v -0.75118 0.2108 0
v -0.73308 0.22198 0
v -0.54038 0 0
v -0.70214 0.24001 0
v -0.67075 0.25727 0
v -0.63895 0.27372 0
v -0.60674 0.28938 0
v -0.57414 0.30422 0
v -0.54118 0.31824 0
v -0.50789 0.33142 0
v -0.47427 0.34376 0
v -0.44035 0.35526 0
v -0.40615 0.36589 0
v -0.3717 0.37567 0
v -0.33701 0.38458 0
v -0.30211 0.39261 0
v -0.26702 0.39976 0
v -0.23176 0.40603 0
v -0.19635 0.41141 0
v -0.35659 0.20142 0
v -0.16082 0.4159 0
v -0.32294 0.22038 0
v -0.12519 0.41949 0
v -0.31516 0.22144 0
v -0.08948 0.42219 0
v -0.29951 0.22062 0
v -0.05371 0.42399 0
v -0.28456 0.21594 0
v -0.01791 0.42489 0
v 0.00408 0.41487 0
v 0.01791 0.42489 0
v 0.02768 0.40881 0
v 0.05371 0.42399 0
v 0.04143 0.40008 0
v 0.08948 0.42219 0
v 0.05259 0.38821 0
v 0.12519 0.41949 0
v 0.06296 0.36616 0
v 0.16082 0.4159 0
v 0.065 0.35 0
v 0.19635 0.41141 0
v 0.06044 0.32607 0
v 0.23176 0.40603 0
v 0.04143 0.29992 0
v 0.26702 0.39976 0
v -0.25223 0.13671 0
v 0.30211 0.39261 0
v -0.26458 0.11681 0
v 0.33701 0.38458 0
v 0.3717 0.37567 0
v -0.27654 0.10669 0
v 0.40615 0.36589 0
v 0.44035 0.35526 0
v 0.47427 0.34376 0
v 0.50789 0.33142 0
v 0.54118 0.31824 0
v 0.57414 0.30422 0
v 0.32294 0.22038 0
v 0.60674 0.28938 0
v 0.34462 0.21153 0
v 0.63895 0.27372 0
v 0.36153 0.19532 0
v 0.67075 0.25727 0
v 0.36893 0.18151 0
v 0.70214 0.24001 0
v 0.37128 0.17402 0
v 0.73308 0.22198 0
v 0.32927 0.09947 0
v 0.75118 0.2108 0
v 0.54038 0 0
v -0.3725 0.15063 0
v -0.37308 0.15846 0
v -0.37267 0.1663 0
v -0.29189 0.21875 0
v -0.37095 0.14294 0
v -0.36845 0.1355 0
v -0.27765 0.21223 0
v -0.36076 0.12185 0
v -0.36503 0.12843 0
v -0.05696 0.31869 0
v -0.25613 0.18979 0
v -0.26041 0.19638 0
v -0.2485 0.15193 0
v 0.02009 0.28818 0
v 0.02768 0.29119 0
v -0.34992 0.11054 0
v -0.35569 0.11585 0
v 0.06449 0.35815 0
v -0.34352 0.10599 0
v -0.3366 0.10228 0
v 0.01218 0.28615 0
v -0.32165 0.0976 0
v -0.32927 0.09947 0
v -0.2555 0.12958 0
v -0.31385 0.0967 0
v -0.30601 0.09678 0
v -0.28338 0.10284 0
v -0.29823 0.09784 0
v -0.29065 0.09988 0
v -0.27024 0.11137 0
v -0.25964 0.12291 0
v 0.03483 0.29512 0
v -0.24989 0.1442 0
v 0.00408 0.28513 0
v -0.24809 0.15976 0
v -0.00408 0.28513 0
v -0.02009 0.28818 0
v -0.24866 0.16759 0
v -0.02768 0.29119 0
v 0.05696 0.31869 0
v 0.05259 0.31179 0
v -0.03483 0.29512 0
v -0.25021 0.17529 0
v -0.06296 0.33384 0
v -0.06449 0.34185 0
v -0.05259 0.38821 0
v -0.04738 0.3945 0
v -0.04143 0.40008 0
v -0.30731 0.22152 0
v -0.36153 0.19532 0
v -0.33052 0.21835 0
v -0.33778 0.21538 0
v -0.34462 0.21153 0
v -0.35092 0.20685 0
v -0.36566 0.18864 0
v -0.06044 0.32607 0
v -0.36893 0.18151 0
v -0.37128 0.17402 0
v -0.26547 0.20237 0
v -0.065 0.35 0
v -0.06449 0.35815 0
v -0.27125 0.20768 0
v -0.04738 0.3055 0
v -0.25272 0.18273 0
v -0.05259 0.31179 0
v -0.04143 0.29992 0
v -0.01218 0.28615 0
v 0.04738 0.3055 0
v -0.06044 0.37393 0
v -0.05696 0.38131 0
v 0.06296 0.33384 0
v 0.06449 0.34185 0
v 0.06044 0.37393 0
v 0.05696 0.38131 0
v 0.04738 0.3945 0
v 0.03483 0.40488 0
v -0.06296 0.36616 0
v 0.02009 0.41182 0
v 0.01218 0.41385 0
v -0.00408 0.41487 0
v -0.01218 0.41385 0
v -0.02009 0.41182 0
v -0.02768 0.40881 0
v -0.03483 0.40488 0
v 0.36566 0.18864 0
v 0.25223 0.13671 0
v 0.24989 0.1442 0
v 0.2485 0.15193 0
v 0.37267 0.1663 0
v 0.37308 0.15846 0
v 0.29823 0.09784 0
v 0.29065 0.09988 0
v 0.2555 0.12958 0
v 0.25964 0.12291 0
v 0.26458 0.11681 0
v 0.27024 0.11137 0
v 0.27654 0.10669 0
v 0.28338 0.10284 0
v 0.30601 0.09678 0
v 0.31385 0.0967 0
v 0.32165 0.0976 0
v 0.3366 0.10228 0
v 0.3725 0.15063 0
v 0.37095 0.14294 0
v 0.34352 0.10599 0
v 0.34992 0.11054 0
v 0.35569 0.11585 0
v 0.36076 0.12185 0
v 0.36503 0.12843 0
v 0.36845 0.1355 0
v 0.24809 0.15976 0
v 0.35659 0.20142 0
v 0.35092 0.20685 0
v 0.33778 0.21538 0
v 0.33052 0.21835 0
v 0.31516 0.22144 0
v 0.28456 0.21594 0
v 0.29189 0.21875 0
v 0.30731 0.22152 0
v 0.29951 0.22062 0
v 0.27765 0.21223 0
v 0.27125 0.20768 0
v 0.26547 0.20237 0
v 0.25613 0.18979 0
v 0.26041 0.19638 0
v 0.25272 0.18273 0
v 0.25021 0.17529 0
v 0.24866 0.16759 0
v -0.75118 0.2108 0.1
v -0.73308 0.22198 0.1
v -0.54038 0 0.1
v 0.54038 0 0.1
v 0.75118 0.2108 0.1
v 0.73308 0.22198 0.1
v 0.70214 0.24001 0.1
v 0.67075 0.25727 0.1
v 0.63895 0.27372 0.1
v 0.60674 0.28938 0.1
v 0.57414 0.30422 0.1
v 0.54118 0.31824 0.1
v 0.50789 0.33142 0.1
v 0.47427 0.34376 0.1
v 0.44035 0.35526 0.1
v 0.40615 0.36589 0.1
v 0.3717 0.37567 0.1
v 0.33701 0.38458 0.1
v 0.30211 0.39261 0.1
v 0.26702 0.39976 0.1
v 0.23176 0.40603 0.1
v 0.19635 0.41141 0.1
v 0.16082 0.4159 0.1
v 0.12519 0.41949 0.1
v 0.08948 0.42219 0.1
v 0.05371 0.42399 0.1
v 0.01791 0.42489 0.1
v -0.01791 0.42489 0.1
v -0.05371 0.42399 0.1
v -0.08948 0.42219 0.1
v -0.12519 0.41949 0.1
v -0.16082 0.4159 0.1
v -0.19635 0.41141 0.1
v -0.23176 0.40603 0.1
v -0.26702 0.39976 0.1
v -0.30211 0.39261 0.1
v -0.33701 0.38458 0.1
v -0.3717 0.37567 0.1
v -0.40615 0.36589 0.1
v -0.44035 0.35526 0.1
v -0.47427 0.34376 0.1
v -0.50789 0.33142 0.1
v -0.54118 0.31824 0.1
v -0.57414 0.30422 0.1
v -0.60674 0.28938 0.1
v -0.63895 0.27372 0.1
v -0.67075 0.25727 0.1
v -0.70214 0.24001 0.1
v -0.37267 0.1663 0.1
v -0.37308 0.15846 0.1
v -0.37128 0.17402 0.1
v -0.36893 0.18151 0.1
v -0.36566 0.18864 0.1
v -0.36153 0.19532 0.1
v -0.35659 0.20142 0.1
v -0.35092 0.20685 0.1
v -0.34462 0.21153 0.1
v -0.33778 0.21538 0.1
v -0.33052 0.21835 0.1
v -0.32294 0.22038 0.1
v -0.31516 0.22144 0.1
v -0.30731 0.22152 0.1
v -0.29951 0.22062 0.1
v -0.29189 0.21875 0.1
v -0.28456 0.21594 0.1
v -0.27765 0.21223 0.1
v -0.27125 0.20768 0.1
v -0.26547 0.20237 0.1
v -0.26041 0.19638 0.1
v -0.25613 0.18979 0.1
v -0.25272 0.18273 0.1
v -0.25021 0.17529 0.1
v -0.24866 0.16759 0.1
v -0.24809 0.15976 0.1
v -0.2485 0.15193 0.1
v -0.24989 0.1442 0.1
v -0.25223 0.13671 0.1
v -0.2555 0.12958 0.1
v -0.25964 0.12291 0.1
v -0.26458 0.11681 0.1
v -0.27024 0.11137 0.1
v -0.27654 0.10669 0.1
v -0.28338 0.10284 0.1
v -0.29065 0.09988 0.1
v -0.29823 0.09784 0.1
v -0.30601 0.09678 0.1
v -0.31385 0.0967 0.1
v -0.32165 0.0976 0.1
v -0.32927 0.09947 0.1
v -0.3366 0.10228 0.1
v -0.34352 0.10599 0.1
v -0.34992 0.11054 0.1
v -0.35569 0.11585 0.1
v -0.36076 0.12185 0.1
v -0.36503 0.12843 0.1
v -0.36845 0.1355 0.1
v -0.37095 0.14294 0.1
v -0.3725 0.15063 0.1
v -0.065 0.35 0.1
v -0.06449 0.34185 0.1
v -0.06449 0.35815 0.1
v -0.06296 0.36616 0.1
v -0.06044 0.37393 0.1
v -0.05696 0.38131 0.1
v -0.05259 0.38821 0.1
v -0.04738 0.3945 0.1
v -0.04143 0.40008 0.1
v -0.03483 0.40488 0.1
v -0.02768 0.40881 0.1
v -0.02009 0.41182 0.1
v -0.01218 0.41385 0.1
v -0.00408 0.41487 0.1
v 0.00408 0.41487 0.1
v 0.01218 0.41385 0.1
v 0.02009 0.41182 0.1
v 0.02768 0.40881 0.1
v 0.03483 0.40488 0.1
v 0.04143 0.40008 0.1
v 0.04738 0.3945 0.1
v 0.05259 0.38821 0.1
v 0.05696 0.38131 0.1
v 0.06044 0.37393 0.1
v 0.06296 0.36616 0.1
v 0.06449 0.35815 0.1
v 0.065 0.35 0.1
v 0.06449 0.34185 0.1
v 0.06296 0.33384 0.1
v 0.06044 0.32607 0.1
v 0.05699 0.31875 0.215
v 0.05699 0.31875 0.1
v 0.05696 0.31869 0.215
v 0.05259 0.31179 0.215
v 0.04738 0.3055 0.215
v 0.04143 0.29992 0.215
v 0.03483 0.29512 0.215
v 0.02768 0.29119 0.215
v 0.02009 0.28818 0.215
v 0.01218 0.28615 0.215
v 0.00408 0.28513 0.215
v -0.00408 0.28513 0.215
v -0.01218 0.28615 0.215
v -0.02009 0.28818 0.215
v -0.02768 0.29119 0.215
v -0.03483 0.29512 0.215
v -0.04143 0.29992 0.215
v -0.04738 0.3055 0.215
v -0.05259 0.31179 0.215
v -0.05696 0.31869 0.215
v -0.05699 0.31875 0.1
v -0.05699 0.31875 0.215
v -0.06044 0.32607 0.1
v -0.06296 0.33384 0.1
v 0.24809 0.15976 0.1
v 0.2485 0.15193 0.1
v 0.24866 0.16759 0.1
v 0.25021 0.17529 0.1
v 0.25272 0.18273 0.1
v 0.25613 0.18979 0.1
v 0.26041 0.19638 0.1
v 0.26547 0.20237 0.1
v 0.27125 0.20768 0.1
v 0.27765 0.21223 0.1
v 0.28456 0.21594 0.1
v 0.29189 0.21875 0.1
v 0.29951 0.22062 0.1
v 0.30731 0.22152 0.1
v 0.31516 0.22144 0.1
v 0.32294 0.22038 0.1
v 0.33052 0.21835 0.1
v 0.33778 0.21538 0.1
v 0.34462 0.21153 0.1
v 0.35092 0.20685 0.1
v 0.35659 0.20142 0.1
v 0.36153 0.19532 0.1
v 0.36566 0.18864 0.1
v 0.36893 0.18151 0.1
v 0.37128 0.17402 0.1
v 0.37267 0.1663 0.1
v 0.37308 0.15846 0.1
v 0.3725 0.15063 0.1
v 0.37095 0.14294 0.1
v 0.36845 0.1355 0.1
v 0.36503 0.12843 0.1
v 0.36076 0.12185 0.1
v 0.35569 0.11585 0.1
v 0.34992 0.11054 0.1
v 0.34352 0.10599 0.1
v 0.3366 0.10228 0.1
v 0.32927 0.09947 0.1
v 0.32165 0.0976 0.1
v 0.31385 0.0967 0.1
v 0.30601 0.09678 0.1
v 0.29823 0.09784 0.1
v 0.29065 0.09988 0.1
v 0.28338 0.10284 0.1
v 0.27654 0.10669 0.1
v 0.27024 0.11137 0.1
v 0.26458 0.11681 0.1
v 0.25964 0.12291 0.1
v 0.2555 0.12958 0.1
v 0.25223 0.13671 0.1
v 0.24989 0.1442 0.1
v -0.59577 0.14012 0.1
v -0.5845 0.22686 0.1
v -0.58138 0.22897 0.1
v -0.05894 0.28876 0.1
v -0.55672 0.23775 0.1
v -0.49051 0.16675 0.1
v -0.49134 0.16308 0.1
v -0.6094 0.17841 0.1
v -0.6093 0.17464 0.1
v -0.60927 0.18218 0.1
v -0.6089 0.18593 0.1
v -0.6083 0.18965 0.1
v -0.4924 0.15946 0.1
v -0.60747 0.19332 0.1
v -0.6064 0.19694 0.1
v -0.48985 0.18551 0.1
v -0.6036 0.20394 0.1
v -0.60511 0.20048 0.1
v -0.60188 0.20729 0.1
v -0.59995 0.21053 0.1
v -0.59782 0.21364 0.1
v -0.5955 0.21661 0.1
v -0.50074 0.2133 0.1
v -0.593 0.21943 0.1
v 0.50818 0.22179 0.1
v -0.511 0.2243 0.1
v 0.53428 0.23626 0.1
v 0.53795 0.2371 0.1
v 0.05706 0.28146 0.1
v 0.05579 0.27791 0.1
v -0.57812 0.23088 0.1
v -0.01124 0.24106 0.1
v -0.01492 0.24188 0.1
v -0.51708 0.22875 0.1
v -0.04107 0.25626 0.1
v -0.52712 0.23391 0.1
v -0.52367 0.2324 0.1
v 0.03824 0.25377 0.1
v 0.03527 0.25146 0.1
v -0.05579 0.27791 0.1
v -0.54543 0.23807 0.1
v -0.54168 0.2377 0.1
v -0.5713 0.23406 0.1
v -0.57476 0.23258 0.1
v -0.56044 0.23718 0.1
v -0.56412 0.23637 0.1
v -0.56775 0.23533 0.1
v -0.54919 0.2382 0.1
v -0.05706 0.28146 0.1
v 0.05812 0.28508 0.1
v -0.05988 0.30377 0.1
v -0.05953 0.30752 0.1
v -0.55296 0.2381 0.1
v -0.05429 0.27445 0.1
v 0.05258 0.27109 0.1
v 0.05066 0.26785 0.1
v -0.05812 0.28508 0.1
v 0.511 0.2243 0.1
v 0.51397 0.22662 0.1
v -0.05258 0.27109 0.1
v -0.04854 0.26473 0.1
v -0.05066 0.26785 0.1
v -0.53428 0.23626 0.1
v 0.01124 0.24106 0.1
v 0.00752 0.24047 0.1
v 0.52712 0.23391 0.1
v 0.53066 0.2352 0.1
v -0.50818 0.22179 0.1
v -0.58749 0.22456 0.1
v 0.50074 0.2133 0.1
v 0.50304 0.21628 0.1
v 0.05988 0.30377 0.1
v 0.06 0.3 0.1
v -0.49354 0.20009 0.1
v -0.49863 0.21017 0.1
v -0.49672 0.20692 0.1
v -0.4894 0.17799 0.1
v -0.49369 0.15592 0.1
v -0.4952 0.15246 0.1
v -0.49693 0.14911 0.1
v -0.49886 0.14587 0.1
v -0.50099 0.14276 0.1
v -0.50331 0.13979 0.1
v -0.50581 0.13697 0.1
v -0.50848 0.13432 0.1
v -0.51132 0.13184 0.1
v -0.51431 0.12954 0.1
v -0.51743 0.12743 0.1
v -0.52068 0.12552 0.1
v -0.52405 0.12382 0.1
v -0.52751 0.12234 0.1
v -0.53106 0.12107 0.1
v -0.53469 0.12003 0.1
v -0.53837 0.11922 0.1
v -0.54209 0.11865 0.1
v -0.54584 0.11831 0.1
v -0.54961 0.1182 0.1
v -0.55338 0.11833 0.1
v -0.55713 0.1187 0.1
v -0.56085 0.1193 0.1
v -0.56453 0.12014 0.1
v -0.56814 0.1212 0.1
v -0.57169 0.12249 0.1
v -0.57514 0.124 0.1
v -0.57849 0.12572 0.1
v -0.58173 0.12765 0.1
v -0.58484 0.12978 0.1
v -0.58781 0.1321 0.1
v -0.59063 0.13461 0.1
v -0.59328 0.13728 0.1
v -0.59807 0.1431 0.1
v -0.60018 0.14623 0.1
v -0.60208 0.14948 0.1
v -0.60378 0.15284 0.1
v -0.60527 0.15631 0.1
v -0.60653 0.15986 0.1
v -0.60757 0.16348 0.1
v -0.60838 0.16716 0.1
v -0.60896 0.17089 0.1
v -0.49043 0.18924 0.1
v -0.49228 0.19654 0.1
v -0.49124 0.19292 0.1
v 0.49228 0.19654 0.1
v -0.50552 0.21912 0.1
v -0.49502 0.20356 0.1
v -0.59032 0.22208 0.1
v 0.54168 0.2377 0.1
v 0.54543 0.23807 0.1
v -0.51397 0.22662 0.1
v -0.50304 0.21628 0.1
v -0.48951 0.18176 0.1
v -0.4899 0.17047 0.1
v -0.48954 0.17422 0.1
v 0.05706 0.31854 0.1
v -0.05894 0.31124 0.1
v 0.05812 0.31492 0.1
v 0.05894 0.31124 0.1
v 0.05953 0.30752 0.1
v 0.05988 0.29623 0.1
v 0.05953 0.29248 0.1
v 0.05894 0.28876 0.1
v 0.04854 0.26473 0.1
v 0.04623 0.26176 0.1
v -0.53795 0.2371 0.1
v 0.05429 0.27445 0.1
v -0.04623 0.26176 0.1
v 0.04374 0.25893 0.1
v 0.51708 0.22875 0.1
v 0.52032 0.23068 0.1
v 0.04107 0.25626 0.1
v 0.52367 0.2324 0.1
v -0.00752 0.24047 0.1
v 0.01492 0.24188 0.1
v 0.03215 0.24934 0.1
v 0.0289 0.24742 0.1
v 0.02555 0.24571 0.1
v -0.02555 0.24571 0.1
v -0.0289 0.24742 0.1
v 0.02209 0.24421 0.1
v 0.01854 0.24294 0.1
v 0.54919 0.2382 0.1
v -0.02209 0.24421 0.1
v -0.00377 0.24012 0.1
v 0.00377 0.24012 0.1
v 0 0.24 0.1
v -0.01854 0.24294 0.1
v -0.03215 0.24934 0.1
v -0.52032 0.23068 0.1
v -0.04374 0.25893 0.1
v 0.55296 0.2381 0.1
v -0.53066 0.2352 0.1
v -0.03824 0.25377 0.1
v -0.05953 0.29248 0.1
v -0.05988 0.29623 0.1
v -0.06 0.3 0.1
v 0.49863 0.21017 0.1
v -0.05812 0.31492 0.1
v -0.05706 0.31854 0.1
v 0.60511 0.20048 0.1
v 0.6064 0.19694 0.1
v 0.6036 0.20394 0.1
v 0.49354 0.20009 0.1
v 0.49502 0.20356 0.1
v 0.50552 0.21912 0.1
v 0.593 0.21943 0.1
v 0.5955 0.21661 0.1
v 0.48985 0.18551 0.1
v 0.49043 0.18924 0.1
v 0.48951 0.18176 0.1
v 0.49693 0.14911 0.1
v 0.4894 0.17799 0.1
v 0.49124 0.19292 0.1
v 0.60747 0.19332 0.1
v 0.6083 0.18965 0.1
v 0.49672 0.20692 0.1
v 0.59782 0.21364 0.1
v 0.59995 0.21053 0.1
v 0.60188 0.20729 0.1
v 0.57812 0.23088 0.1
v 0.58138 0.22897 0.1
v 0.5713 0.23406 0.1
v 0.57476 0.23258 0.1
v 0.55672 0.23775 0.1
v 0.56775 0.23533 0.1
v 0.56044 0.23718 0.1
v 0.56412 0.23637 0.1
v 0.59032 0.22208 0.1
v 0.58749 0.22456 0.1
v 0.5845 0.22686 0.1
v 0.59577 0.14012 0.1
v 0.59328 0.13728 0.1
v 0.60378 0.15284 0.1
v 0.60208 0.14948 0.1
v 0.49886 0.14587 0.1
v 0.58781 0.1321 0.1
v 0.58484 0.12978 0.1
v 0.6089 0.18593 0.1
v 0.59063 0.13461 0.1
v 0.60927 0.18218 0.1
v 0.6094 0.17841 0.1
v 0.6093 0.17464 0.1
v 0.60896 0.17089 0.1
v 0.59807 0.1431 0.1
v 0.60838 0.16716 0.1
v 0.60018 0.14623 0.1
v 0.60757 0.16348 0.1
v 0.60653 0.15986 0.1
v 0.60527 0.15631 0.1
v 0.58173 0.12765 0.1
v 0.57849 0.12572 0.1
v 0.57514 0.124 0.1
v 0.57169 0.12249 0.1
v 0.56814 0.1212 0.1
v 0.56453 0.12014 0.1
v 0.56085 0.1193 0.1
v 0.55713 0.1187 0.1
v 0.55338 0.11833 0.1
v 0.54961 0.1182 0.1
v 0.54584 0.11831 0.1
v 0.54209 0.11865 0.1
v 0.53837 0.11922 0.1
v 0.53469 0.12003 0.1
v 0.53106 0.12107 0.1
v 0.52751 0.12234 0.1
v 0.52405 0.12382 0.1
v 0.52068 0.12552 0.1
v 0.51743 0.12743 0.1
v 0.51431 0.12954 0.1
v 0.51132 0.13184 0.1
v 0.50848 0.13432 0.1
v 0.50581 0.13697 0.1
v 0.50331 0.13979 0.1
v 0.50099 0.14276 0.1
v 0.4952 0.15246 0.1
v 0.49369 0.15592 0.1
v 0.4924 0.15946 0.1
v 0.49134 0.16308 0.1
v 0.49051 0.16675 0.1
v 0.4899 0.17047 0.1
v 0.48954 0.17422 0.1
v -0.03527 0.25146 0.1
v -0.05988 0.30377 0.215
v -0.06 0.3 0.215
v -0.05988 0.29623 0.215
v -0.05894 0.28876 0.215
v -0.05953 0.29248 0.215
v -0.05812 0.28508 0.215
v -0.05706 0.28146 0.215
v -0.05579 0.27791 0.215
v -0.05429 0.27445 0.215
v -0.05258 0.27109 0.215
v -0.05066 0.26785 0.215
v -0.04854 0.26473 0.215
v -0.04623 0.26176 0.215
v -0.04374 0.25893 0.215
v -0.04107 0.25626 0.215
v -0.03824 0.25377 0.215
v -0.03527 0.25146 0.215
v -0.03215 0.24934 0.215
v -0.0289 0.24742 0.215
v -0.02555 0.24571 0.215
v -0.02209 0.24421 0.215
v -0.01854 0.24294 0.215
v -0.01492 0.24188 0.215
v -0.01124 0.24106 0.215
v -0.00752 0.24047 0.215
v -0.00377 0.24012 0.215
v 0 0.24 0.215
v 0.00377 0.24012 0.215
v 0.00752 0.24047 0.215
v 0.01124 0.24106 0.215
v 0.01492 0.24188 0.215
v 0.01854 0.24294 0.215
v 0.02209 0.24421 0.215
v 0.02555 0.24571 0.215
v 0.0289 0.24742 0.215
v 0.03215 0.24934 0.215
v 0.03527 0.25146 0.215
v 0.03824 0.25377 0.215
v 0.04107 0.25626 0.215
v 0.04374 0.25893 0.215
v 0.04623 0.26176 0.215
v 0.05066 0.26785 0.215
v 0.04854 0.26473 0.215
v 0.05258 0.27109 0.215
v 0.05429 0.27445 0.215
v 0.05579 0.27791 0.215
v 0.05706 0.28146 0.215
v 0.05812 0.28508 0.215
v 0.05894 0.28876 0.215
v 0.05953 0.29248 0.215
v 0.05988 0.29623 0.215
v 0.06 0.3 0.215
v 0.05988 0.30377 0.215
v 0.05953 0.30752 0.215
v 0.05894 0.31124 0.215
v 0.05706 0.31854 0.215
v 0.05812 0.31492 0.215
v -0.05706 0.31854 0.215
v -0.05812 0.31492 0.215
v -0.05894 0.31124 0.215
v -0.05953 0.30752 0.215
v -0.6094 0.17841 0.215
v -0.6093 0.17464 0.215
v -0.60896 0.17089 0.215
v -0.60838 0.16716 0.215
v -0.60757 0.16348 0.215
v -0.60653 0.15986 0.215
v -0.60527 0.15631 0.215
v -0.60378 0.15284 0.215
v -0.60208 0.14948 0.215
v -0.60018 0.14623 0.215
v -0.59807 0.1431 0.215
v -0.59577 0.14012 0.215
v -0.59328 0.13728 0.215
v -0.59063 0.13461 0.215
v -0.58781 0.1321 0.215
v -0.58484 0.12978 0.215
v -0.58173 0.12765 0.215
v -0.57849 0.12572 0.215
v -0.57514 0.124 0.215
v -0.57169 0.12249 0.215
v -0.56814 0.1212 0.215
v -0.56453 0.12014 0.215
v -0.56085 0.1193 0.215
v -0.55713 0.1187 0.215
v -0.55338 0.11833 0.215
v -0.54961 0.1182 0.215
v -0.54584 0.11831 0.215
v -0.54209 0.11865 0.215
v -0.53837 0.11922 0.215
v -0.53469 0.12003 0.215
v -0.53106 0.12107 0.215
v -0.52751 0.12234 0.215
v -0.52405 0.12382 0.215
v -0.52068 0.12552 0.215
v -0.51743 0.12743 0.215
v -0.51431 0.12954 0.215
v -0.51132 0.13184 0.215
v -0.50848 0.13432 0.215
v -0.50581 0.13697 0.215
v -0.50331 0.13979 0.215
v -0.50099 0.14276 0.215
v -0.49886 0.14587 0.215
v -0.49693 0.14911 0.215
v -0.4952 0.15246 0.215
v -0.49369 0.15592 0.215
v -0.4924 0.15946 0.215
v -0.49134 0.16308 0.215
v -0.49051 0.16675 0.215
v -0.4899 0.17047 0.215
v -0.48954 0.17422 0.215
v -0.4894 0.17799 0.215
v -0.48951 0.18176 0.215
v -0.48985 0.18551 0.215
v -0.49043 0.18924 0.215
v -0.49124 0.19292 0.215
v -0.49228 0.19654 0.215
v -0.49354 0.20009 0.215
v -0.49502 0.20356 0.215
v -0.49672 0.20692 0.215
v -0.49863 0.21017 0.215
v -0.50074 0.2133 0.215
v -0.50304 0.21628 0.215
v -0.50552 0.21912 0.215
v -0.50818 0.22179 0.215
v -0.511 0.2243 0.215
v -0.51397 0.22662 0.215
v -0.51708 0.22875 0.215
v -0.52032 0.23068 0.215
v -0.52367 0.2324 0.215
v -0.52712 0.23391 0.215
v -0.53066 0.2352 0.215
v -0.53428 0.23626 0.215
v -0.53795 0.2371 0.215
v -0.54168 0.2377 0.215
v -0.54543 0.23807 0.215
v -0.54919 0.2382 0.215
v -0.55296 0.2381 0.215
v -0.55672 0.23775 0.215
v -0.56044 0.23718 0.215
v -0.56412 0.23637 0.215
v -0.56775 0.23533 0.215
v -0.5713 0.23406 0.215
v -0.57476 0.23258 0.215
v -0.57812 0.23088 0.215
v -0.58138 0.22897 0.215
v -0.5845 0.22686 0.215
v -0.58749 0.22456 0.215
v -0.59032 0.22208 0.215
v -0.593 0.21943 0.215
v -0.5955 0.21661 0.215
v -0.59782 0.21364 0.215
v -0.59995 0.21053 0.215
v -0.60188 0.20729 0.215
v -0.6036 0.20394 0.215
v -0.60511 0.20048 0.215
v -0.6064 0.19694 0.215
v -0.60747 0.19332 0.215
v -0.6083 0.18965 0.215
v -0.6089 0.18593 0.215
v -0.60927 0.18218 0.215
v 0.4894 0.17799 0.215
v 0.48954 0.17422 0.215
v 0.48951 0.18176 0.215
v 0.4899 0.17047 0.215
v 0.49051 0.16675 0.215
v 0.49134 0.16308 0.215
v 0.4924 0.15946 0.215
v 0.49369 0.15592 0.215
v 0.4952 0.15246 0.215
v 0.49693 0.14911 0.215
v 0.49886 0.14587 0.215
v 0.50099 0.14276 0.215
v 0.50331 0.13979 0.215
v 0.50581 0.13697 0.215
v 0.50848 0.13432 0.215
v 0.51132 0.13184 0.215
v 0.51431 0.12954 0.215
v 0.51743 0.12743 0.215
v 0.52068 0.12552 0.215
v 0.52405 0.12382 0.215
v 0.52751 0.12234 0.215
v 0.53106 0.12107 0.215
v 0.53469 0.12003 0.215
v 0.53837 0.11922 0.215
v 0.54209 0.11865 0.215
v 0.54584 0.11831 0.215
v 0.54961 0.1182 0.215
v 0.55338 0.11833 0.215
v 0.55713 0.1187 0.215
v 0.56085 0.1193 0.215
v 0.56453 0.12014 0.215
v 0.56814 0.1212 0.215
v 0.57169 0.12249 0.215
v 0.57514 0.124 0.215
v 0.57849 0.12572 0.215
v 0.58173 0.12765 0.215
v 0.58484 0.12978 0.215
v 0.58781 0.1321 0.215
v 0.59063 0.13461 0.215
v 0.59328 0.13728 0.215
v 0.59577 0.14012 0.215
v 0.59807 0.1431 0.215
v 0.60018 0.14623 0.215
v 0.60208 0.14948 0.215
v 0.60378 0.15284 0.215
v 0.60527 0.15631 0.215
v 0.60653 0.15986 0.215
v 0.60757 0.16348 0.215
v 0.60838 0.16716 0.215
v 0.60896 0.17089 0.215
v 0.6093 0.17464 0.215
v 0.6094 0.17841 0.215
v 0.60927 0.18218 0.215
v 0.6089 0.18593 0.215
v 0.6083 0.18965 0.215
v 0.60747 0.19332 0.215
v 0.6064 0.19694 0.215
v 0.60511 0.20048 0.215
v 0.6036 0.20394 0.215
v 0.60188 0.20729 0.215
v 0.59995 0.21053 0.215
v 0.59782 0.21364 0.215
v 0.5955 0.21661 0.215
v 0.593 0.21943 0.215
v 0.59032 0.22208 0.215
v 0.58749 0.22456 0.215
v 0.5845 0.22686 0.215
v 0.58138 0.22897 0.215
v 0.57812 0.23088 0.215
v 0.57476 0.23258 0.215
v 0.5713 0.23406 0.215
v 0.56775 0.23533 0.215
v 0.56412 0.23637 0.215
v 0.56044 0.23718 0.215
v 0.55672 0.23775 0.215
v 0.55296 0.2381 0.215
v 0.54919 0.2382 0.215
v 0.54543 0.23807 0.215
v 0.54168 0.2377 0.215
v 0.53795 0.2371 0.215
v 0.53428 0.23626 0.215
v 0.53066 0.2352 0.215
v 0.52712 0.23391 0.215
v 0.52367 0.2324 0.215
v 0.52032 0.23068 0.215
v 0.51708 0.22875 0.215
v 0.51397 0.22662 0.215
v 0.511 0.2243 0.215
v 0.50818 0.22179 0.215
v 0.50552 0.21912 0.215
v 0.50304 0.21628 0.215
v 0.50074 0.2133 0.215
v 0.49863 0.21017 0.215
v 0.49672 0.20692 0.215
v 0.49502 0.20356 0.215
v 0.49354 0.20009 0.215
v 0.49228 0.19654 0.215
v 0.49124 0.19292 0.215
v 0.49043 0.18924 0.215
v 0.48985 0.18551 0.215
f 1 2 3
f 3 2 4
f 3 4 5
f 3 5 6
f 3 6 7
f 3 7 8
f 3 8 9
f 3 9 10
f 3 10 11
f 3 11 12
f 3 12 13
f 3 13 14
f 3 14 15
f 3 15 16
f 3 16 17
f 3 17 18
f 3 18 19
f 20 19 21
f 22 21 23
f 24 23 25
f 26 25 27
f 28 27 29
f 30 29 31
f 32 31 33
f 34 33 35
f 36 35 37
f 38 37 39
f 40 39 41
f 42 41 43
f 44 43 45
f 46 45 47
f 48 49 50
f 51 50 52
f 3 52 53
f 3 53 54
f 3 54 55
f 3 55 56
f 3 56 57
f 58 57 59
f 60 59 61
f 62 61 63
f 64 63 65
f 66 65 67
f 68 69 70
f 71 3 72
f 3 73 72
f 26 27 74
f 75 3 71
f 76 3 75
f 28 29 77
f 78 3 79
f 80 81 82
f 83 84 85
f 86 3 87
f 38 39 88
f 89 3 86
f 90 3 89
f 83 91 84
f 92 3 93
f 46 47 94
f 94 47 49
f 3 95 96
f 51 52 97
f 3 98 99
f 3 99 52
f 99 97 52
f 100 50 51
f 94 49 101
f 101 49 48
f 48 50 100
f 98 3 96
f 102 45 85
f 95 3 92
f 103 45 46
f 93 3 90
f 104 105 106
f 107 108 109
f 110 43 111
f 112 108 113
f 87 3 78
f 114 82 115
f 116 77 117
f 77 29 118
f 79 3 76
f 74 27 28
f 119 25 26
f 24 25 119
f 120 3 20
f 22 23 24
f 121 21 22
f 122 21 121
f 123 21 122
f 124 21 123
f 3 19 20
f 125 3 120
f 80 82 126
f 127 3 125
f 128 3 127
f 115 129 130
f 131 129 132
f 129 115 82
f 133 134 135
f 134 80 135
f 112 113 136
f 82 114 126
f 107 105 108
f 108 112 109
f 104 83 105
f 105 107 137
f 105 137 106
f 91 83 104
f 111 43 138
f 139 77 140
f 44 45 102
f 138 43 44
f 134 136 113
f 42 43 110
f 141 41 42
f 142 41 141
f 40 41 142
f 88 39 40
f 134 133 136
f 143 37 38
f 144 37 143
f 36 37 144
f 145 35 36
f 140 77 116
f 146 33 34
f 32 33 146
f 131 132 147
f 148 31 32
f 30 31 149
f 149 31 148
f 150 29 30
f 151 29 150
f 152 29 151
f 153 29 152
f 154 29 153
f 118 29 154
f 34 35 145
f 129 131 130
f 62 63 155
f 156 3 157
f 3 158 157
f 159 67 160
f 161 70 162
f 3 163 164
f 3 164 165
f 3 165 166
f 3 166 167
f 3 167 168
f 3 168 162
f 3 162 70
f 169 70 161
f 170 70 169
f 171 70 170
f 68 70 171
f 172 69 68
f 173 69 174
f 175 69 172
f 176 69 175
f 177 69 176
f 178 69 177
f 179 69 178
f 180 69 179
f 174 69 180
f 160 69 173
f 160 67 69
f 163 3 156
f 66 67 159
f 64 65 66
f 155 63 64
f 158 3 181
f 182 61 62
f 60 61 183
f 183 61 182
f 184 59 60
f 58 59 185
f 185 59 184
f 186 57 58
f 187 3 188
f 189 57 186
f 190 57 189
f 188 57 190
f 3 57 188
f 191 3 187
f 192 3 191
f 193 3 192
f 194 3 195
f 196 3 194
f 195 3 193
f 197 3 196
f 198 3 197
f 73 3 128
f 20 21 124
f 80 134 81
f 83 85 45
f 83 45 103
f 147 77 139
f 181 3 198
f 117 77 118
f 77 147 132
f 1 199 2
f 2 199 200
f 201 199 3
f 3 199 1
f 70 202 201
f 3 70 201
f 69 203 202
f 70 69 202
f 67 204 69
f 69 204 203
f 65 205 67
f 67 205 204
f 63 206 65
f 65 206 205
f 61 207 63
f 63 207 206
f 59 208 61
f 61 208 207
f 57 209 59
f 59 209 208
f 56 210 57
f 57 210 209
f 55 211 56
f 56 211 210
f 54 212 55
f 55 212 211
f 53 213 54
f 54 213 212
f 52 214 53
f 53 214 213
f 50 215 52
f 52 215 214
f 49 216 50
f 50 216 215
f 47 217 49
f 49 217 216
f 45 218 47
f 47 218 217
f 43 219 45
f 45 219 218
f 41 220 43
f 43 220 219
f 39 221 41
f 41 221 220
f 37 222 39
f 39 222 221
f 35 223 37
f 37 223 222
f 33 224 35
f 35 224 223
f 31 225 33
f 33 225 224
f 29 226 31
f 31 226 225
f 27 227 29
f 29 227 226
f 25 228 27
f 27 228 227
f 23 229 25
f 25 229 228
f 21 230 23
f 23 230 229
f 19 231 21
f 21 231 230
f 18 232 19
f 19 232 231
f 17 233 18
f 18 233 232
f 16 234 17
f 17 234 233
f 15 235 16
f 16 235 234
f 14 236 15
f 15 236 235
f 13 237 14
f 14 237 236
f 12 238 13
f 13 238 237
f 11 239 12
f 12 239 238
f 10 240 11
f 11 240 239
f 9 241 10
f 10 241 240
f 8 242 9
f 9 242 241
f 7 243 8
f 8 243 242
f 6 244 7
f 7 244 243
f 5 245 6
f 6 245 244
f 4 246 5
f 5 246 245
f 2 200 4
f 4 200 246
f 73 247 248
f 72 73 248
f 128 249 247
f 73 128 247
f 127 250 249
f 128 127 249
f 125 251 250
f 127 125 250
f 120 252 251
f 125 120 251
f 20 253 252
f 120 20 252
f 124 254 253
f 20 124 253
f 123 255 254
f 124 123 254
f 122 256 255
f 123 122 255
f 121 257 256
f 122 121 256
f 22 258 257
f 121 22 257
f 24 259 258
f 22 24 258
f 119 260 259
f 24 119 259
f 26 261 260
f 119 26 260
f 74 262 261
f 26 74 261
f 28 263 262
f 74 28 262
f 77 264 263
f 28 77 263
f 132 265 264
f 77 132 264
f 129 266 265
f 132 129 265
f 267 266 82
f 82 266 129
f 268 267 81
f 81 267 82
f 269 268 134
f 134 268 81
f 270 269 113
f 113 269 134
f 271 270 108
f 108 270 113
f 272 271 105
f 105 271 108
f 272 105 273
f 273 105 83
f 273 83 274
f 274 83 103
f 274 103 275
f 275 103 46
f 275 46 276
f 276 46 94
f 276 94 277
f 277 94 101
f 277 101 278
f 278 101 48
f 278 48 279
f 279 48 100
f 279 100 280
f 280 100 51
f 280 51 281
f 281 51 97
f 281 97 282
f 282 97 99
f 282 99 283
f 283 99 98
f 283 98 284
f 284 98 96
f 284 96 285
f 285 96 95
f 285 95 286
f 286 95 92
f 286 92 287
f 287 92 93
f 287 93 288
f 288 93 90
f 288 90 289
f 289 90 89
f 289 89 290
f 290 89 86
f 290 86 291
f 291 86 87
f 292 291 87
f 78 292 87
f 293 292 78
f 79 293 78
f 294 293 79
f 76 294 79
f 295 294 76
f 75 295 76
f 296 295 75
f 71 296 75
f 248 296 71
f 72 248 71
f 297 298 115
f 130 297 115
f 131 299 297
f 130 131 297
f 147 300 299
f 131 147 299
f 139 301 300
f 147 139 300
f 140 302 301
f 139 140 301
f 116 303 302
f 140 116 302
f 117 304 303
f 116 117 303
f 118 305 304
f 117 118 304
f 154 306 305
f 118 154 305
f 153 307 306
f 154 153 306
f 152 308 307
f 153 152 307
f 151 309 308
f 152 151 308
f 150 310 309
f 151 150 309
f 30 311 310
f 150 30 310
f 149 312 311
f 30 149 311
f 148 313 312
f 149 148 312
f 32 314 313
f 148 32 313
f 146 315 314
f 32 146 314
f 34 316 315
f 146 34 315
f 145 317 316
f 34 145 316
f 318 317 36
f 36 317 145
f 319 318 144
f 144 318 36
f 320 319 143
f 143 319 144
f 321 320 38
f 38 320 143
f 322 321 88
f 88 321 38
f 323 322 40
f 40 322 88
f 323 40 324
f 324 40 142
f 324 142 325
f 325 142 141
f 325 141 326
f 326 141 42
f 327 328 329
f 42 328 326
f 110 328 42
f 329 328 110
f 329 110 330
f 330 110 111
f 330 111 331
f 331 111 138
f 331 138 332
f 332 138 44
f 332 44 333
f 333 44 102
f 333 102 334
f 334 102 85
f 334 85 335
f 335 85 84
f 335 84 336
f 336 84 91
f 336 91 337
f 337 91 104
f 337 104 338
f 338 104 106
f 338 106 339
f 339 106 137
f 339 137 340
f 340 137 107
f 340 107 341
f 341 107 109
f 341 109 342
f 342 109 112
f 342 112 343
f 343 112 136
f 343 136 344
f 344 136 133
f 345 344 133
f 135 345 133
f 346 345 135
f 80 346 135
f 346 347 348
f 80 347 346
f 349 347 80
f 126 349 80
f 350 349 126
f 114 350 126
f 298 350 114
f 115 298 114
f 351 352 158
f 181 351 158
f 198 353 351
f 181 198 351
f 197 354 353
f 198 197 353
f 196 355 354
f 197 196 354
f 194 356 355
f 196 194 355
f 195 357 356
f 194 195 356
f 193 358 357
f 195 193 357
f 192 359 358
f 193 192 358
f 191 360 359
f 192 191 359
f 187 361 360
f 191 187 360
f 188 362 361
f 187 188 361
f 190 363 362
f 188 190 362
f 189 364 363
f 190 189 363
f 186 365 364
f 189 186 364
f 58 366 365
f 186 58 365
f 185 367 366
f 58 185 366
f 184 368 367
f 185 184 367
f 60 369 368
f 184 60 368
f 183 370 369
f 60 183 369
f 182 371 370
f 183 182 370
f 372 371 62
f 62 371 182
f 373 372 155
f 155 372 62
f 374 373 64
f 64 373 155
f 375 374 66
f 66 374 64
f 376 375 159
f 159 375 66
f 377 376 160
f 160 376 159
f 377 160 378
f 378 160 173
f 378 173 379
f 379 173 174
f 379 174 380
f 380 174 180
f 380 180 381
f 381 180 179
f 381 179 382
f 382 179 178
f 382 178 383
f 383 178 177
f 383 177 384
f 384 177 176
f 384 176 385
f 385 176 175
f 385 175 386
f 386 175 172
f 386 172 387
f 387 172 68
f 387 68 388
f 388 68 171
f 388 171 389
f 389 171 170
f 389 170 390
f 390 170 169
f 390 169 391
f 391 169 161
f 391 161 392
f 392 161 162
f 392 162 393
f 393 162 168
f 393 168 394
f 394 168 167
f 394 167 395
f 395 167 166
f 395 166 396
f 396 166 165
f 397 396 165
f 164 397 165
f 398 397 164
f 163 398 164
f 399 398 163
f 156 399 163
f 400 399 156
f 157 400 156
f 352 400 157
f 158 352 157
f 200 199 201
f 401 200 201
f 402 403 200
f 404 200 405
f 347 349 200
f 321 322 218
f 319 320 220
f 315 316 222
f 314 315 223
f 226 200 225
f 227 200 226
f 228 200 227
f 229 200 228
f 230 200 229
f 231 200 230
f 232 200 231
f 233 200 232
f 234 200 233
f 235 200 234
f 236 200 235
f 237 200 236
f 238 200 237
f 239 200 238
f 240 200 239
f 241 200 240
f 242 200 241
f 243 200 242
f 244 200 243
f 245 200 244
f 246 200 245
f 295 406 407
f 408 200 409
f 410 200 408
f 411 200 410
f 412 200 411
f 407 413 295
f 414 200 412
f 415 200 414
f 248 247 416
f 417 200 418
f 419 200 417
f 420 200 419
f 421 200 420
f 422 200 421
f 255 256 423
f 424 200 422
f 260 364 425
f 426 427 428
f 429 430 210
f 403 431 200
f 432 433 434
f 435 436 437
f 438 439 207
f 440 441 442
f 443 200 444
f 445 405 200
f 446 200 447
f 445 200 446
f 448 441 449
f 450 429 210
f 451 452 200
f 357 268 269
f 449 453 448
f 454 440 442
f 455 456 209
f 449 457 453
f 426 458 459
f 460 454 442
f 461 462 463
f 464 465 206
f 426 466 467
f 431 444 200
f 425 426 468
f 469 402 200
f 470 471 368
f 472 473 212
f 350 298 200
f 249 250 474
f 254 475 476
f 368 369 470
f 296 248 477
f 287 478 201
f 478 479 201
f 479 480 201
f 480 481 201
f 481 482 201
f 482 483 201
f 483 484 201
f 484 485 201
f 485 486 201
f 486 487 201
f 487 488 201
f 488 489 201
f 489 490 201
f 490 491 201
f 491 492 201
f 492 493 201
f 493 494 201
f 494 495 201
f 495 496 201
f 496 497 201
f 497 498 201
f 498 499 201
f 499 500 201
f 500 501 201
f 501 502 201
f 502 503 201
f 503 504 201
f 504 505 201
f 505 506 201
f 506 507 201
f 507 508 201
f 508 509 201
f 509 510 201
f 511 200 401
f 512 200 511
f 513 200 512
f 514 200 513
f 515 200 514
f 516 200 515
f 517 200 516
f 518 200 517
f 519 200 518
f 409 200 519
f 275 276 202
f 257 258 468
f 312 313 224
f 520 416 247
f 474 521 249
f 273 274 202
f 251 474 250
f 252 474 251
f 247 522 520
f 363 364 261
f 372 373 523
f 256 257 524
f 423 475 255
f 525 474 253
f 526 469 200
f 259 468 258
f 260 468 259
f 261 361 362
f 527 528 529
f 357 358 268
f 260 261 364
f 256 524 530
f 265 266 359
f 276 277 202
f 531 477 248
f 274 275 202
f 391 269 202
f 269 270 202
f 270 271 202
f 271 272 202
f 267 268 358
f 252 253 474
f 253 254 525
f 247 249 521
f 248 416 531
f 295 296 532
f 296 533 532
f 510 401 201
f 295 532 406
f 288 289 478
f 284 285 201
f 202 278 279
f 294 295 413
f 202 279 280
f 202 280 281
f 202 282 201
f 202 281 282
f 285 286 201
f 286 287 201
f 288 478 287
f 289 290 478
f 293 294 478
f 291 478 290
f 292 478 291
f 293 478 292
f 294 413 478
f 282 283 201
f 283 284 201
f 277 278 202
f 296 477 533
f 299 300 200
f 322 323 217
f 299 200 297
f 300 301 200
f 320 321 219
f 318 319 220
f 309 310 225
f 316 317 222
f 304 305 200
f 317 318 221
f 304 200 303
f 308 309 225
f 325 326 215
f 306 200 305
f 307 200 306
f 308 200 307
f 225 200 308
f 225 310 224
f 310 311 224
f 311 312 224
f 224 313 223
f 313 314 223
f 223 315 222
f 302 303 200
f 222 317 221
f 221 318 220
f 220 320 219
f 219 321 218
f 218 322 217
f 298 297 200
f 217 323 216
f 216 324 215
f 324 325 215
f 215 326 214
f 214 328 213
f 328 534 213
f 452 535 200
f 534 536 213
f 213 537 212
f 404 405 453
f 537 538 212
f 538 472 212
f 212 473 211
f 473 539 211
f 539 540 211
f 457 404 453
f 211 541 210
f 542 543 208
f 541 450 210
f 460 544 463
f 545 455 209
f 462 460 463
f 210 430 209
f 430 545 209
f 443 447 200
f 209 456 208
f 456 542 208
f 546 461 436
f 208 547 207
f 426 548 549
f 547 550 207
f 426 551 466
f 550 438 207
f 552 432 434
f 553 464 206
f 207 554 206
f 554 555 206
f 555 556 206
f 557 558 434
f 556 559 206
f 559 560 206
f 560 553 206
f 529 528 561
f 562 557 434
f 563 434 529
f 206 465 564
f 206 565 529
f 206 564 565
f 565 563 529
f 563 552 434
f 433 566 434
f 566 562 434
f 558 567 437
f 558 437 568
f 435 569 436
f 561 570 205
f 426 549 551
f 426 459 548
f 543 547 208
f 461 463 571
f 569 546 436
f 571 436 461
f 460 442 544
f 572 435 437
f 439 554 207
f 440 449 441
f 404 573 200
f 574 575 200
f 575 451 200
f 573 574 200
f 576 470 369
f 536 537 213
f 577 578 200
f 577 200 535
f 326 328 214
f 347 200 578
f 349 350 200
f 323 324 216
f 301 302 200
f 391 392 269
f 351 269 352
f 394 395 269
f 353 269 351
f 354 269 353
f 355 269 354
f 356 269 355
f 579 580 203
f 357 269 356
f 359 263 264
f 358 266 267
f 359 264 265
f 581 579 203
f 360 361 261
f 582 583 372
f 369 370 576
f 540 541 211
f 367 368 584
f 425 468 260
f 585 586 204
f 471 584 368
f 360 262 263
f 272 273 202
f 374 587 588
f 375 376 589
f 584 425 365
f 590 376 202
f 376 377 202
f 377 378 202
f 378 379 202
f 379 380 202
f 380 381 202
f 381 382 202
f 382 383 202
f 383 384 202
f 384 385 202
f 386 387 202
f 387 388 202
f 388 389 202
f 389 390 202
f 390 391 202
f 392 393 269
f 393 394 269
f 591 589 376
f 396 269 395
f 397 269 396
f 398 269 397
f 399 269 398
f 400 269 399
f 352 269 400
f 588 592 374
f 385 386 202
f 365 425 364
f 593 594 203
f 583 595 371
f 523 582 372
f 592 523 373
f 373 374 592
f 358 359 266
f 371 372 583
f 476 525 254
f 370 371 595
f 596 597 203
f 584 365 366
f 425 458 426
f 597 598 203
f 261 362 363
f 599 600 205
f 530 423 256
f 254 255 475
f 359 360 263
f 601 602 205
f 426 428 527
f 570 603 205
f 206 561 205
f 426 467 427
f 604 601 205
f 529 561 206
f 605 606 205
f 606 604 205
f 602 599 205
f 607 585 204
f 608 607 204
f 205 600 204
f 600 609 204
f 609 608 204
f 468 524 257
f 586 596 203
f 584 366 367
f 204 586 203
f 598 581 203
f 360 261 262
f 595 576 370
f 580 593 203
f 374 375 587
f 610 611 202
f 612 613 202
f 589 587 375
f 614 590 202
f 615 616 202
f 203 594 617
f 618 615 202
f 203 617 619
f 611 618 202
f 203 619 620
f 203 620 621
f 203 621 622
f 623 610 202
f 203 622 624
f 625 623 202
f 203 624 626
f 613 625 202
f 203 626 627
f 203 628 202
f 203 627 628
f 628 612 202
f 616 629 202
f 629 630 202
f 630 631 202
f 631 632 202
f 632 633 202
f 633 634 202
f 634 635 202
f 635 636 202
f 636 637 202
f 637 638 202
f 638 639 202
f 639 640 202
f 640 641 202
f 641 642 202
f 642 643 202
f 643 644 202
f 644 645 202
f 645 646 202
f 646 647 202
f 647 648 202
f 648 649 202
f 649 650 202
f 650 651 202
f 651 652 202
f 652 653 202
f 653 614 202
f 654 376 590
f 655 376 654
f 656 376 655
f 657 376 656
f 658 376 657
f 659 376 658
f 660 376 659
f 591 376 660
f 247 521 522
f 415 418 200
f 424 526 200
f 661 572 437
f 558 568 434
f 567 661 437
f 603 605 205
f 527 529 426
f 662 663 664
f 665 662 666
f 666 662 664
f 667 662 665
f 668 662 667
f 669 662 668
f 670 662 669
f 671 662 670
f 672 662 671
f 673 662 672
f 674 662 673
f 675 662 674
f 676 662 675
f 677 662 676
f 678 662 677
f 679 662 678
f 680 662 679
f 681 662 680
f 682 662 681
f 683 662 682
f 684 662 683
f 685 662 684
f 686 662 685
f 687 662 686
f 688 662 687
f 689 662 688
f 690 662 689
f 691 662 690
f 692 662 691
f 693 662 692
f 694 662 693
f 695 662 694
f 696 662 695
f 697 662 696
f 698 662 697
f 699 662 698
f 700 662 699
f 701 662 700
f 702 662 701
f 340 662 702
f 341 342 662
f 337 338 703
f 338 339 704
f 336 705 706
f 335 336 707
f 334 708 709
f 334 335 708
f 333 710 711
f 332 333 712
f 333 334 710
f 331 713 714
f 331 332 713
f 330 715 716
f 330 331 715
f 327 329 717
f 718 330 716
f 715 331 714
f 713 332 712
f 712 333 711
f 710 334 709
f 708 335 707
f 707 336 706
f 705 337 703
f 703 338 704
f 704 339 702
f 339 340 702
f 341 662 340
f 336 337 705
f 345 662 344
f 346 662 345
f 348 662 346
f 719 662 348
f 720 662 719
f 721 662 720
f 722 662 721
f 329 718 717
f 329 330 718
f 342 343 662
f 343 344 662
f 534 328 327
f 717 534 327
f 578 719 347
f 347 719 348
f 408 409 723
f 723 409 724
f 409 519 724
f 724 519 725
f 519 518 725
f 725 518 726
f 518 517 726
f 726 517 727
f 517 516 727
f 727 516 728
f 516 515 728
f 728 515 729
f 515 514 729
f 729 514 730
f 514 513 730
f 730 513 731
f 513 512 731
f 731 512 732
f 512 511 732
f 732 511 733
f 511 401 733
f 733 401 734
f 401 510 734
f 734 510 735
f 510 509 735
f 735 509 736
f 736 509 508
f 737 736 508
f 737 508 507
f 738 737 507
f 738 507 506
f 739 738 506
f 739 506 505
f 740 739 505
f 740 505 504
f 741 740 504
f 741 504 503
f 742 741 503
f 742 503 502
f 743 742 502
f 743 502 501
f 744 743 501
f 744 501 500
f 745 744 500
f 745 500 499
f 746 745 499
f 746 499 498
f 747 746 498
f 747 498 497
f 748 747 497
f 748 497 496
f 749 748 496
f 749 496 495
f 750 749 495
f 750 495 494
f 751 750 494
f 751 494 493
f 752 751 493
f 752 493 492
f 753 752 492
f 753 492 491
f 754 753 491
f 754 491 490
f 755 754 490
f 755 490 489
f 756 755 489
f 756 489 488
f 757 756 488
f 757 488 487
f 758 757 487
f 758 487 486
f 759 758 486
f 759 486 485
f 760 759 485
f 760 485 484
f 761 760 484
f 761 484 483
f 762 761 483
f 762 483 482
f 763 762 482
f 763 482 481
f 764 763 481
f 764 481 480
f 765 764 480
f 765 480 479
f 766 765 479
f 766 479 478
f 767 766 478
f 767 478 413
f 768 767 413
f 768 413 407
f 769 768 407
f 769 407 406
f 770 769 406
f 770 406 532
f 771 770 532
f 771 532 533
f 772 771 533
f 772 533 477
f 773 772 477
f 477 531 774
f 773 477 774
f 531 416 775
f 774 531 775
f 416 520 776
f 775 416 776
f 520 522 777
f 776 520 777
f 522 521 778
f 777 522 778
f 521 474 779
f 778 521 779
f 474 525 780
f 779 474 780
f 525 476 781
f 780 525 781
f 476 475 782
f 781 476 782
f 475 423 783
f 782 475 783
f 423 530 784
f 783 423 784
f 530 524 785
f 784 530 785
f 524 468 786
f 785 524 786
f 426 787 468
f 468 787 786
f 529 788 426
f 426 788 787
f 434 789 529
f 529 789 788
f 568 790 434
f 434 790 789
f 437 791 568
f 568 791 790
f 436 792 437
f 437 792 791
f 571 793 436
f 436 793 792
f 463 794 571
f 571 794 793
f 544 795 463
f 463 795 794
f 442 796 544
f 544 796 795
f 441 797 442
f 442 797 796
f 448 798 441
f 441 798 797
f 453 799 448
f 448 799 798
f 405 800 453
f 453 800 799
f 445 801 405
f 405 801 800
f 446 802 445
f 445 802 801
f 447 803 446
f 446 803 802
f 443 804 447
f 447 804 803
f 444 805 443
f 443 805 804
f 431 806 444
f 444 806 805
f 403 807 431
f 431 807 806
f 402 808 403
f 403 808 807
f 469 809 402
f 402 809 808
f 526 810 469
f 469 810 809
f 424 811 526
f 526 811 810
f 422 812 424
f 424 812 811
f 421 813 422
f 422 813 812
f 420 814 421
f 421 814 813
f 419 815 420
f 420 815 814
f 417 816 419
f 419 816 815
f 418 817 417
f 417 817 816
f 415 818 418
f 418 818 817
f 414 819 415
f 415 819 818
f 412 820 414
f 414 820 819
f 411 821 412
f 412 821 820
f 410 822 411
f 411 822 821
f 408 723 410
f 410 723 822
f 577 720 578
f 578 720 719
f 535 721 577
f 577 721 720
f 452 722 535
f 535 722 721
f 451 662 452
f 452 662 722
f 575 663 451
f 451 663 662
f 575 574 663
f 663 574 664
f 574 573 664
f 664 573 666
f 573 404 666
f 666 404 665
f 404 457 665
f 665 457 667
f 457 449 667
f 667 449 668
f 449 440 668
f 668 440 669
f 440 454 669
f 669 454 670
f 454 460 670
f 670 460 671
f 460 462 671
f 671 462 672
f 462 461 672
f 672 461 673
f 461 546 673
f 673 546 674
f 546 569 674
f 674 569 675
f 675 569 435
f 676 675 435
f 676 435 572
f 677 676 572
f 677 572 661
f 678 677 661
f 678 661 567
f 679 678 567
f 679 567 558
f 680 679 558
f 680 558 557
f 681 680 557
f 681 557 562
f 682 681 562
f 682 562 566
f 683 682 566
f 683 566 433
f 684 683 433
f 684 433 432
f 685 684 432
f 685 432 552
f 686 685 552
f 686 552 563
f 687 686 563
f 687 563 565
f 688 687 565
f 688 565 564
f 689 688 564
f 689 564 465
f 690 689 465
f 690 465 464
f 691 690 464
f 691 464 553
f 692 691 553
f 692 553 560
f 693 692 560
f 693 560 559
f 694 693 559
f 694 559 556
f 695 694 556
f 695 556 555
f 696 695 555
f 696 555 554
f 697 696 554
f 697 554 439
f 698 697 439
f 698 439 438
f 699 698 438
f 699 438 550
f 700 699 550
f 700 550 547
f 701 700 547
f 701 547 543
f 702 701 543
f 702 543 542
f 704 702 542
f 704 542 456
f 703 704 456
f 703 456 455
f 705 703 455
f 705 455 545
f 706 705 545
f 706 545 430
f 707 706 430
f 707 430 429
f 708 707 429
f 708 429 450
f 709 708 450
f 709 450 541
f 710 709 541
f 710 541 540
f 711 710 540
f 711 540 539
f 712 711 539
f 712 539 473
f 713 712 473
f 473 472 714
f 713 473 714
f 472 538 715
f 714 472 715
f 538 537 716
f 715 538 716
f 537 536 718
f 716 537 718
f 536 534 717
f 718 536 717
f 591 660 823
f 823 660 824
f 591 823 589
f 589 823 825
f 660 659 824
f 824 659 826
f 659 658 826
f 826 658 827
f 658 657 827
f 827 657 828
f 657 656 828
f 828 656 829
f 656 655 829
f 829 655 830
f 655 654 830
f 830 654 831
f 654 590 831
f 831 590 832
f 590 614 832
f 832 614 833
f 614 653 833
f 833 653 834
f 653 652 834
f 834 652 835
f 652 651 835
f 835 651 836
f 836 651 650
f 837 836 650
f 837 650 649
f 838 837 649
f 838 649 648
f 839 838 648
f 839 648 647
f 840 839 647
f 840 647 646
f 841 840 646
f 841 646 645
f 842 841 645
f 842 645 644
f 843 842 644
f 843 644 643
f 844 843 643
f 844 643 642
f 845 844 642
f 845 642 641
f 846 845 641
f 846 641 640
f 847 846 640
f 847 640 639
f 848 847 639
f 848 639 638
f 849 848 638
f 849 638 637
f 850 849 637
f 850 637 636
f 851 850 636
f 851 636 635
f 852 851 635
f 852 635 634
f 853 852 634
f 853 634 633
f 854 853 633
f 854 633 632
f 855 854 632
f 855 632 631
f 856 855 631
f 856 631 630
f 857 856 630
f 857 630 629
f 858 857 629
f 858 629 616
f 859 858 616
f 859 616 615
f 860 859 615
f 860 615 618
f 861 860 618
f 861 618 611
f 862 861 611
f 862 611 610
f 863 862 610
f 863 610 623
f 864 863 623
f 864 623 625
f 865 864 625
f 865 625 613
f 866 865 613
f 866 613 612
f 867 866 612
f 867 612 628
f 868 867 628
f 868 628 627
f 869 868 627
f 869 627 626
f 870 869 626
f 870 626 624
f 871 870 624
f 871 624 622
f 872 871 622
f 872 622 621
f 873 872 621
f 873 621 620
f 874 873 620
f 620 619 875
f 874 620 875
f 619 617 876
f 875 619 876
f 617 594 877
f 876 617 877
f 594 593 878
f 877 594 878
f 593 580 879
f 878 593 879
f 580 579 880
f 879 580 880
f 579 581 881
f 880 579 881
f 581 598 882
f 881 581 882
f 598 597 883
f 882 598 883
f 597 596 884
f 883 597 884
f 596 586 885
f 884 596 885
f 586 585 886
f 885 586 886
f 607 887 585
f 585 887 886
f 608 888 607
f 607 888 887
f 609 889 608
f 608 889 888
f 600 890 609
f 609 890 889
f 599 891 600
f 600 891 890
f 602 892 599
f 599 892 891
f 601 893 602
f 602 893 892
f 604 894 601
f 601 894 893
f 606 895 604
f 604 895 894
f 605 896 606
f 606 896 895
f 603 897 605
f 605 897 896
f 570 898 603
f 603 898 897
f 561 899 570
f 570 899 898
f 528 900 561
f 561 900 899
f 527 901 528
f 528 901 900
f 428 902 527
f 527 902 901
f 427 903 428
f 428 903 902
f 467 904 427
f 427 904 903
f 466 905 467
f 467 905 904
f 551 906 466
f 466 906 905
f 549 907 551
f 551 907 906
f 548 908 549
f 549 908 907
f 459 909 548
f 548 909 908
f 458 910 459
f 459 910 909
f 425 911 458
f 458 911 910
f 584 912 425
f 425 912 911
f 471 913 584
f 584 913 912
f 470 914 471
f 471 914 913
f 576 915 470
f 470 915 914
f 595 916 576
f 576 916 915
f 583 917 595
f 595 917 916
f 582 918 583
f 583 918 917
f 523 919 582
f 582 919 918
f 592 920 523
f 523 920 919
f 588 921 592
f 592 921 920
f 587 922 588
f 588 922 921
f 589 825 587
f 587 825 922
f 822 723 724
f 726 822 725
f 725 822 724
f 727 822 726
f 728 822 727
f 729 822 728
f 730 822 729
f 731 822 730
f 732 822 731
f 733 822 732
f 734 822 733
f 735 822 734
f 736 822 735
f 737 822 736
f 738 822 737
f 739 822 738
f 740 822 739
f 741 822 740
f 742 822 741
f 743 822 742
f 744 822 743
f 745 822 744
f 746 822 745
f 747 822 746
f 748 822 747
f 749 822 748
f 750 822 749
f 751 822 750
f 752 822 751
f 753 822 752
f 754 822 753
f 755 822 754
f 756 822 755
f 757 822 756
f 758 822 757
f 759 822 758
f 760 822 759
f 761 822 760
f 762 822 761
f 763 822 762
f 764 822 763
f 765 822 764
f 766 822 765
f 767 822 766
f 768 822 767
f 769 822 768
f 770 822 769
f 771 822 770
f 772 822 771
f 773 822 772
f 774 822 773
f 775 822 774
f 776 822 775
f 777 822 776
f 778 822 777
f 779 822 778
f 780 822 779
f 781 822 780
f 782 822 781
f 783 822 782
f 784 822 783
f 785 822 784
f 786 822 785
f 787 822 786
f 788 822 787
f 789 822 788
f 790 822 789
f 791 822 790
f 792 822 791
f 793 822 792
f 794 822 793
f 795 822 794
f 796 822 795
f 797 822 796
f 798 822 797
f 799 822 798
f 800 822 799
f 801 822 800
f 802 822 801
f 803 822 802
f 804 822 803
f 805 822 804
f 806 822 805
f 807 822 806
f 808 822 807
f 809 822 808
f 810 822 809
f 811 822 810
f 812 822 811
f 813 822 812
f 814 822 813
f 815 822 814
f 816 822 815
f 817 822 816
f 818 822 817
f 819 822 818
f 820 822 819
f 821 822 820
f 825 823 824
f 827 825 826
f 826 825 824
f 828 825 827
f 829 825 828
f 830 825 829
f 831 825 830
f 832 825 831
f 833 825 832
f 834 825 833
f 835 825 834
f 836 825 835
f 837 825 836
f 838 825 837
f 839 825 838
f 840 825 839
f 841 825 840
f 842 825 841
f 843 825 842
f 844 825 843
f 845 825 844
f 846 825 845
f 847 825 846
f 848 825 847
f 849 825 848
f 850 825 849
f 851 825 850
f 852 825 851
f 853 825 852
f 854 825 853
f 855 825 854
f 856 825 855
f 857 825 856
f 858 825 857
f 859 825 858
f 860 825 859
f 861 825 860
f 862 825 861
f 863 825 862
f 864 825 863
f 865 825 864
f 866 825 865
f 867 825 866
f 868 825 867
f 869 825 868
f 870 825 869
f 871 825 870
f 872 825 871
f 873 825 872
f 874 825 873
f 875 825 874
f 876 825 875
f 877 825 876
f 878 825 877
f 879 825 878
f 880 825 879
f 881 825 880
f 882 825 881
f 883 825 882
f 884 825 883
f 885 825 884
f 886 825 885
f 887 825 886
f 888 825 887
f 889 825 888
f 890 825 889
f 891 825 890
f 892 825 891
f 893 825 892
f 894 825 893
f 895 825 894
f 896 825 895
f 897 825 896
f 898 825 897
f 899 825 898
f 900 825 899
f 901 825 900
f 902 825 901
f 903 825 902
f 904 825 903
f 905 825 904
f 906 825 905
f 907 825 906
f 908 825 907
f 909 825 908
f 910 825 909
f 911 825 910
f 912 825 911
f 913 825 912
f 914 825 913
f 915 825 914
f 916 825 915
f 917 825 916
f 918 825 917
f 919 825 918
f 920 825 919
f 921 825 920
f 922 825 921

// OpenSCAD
deckHeight = 0.150;
bushingHeight = 0.093;
offsetMarginMM = 0.50;
gearOffsetMM = 20.054 + offsetMarginMM;
gearOffsetIN = gearOffsetMM / 25.4;

bushingOffsetX = gearOffsetIN*sin(45);
bushingOffsetY = gearOffsetIN*cos(45);
indicatorOffset = sqrt(2 * gearOffsetIN * gearOffsetIN);

spacerHeight = deckHeight + bushingHeight + 0.375 + bushingHeight - 0.100;

module AlignmentPin(rot)
{
  rotate(a = rot, v=[0,0,1])
    translate([0, 1.30, 0.100 - 0.010])
      cylinder(h = 0.125, d = 0.120, center = false, $fn = 100);
}

module MountingScrewNut(rot)
{
  rotate(a = rot, v = [0, 0, 1])
    translate([0, 1.2, 0])
      cylinder(h = 0.500, d = 0.125, center = true, $fn = 50);
}

// Support walls caps.
translate([0, -1, 0])
  difference() {
    union() {
      cylinder(h = 0.100, d = 3.000 - 0.150, center = false, $fn = 250);
      AlignmentPin(-25);
      AlignmentPin(0);
      AlignmentPin(+25);
    }

    cylinder(h = 2, d = 3.000 - 1.000, center = true, $fn = 250);

    rotate(a=-90, v=[0,0,1])
      cube([2.00, 4, 3], center = true);
    rotate(a=-45, v=[0,0,1])
      cube([0.650, 4, 3], center = true);
    rotate(a=45, v=[0,0,1])
      cube([0.650, 4, 3], center = true);

    translate([0, -1, 0]) cube([2,2,2], center = true);

    MountingScrewNut(15);
    MountingScrewNut(-15);

    // Relief for spacer screw.
    translate([0, 1.35, 0])
      cylinder(h=0.50, d=0.130, center=true, $fn=50);
  }
